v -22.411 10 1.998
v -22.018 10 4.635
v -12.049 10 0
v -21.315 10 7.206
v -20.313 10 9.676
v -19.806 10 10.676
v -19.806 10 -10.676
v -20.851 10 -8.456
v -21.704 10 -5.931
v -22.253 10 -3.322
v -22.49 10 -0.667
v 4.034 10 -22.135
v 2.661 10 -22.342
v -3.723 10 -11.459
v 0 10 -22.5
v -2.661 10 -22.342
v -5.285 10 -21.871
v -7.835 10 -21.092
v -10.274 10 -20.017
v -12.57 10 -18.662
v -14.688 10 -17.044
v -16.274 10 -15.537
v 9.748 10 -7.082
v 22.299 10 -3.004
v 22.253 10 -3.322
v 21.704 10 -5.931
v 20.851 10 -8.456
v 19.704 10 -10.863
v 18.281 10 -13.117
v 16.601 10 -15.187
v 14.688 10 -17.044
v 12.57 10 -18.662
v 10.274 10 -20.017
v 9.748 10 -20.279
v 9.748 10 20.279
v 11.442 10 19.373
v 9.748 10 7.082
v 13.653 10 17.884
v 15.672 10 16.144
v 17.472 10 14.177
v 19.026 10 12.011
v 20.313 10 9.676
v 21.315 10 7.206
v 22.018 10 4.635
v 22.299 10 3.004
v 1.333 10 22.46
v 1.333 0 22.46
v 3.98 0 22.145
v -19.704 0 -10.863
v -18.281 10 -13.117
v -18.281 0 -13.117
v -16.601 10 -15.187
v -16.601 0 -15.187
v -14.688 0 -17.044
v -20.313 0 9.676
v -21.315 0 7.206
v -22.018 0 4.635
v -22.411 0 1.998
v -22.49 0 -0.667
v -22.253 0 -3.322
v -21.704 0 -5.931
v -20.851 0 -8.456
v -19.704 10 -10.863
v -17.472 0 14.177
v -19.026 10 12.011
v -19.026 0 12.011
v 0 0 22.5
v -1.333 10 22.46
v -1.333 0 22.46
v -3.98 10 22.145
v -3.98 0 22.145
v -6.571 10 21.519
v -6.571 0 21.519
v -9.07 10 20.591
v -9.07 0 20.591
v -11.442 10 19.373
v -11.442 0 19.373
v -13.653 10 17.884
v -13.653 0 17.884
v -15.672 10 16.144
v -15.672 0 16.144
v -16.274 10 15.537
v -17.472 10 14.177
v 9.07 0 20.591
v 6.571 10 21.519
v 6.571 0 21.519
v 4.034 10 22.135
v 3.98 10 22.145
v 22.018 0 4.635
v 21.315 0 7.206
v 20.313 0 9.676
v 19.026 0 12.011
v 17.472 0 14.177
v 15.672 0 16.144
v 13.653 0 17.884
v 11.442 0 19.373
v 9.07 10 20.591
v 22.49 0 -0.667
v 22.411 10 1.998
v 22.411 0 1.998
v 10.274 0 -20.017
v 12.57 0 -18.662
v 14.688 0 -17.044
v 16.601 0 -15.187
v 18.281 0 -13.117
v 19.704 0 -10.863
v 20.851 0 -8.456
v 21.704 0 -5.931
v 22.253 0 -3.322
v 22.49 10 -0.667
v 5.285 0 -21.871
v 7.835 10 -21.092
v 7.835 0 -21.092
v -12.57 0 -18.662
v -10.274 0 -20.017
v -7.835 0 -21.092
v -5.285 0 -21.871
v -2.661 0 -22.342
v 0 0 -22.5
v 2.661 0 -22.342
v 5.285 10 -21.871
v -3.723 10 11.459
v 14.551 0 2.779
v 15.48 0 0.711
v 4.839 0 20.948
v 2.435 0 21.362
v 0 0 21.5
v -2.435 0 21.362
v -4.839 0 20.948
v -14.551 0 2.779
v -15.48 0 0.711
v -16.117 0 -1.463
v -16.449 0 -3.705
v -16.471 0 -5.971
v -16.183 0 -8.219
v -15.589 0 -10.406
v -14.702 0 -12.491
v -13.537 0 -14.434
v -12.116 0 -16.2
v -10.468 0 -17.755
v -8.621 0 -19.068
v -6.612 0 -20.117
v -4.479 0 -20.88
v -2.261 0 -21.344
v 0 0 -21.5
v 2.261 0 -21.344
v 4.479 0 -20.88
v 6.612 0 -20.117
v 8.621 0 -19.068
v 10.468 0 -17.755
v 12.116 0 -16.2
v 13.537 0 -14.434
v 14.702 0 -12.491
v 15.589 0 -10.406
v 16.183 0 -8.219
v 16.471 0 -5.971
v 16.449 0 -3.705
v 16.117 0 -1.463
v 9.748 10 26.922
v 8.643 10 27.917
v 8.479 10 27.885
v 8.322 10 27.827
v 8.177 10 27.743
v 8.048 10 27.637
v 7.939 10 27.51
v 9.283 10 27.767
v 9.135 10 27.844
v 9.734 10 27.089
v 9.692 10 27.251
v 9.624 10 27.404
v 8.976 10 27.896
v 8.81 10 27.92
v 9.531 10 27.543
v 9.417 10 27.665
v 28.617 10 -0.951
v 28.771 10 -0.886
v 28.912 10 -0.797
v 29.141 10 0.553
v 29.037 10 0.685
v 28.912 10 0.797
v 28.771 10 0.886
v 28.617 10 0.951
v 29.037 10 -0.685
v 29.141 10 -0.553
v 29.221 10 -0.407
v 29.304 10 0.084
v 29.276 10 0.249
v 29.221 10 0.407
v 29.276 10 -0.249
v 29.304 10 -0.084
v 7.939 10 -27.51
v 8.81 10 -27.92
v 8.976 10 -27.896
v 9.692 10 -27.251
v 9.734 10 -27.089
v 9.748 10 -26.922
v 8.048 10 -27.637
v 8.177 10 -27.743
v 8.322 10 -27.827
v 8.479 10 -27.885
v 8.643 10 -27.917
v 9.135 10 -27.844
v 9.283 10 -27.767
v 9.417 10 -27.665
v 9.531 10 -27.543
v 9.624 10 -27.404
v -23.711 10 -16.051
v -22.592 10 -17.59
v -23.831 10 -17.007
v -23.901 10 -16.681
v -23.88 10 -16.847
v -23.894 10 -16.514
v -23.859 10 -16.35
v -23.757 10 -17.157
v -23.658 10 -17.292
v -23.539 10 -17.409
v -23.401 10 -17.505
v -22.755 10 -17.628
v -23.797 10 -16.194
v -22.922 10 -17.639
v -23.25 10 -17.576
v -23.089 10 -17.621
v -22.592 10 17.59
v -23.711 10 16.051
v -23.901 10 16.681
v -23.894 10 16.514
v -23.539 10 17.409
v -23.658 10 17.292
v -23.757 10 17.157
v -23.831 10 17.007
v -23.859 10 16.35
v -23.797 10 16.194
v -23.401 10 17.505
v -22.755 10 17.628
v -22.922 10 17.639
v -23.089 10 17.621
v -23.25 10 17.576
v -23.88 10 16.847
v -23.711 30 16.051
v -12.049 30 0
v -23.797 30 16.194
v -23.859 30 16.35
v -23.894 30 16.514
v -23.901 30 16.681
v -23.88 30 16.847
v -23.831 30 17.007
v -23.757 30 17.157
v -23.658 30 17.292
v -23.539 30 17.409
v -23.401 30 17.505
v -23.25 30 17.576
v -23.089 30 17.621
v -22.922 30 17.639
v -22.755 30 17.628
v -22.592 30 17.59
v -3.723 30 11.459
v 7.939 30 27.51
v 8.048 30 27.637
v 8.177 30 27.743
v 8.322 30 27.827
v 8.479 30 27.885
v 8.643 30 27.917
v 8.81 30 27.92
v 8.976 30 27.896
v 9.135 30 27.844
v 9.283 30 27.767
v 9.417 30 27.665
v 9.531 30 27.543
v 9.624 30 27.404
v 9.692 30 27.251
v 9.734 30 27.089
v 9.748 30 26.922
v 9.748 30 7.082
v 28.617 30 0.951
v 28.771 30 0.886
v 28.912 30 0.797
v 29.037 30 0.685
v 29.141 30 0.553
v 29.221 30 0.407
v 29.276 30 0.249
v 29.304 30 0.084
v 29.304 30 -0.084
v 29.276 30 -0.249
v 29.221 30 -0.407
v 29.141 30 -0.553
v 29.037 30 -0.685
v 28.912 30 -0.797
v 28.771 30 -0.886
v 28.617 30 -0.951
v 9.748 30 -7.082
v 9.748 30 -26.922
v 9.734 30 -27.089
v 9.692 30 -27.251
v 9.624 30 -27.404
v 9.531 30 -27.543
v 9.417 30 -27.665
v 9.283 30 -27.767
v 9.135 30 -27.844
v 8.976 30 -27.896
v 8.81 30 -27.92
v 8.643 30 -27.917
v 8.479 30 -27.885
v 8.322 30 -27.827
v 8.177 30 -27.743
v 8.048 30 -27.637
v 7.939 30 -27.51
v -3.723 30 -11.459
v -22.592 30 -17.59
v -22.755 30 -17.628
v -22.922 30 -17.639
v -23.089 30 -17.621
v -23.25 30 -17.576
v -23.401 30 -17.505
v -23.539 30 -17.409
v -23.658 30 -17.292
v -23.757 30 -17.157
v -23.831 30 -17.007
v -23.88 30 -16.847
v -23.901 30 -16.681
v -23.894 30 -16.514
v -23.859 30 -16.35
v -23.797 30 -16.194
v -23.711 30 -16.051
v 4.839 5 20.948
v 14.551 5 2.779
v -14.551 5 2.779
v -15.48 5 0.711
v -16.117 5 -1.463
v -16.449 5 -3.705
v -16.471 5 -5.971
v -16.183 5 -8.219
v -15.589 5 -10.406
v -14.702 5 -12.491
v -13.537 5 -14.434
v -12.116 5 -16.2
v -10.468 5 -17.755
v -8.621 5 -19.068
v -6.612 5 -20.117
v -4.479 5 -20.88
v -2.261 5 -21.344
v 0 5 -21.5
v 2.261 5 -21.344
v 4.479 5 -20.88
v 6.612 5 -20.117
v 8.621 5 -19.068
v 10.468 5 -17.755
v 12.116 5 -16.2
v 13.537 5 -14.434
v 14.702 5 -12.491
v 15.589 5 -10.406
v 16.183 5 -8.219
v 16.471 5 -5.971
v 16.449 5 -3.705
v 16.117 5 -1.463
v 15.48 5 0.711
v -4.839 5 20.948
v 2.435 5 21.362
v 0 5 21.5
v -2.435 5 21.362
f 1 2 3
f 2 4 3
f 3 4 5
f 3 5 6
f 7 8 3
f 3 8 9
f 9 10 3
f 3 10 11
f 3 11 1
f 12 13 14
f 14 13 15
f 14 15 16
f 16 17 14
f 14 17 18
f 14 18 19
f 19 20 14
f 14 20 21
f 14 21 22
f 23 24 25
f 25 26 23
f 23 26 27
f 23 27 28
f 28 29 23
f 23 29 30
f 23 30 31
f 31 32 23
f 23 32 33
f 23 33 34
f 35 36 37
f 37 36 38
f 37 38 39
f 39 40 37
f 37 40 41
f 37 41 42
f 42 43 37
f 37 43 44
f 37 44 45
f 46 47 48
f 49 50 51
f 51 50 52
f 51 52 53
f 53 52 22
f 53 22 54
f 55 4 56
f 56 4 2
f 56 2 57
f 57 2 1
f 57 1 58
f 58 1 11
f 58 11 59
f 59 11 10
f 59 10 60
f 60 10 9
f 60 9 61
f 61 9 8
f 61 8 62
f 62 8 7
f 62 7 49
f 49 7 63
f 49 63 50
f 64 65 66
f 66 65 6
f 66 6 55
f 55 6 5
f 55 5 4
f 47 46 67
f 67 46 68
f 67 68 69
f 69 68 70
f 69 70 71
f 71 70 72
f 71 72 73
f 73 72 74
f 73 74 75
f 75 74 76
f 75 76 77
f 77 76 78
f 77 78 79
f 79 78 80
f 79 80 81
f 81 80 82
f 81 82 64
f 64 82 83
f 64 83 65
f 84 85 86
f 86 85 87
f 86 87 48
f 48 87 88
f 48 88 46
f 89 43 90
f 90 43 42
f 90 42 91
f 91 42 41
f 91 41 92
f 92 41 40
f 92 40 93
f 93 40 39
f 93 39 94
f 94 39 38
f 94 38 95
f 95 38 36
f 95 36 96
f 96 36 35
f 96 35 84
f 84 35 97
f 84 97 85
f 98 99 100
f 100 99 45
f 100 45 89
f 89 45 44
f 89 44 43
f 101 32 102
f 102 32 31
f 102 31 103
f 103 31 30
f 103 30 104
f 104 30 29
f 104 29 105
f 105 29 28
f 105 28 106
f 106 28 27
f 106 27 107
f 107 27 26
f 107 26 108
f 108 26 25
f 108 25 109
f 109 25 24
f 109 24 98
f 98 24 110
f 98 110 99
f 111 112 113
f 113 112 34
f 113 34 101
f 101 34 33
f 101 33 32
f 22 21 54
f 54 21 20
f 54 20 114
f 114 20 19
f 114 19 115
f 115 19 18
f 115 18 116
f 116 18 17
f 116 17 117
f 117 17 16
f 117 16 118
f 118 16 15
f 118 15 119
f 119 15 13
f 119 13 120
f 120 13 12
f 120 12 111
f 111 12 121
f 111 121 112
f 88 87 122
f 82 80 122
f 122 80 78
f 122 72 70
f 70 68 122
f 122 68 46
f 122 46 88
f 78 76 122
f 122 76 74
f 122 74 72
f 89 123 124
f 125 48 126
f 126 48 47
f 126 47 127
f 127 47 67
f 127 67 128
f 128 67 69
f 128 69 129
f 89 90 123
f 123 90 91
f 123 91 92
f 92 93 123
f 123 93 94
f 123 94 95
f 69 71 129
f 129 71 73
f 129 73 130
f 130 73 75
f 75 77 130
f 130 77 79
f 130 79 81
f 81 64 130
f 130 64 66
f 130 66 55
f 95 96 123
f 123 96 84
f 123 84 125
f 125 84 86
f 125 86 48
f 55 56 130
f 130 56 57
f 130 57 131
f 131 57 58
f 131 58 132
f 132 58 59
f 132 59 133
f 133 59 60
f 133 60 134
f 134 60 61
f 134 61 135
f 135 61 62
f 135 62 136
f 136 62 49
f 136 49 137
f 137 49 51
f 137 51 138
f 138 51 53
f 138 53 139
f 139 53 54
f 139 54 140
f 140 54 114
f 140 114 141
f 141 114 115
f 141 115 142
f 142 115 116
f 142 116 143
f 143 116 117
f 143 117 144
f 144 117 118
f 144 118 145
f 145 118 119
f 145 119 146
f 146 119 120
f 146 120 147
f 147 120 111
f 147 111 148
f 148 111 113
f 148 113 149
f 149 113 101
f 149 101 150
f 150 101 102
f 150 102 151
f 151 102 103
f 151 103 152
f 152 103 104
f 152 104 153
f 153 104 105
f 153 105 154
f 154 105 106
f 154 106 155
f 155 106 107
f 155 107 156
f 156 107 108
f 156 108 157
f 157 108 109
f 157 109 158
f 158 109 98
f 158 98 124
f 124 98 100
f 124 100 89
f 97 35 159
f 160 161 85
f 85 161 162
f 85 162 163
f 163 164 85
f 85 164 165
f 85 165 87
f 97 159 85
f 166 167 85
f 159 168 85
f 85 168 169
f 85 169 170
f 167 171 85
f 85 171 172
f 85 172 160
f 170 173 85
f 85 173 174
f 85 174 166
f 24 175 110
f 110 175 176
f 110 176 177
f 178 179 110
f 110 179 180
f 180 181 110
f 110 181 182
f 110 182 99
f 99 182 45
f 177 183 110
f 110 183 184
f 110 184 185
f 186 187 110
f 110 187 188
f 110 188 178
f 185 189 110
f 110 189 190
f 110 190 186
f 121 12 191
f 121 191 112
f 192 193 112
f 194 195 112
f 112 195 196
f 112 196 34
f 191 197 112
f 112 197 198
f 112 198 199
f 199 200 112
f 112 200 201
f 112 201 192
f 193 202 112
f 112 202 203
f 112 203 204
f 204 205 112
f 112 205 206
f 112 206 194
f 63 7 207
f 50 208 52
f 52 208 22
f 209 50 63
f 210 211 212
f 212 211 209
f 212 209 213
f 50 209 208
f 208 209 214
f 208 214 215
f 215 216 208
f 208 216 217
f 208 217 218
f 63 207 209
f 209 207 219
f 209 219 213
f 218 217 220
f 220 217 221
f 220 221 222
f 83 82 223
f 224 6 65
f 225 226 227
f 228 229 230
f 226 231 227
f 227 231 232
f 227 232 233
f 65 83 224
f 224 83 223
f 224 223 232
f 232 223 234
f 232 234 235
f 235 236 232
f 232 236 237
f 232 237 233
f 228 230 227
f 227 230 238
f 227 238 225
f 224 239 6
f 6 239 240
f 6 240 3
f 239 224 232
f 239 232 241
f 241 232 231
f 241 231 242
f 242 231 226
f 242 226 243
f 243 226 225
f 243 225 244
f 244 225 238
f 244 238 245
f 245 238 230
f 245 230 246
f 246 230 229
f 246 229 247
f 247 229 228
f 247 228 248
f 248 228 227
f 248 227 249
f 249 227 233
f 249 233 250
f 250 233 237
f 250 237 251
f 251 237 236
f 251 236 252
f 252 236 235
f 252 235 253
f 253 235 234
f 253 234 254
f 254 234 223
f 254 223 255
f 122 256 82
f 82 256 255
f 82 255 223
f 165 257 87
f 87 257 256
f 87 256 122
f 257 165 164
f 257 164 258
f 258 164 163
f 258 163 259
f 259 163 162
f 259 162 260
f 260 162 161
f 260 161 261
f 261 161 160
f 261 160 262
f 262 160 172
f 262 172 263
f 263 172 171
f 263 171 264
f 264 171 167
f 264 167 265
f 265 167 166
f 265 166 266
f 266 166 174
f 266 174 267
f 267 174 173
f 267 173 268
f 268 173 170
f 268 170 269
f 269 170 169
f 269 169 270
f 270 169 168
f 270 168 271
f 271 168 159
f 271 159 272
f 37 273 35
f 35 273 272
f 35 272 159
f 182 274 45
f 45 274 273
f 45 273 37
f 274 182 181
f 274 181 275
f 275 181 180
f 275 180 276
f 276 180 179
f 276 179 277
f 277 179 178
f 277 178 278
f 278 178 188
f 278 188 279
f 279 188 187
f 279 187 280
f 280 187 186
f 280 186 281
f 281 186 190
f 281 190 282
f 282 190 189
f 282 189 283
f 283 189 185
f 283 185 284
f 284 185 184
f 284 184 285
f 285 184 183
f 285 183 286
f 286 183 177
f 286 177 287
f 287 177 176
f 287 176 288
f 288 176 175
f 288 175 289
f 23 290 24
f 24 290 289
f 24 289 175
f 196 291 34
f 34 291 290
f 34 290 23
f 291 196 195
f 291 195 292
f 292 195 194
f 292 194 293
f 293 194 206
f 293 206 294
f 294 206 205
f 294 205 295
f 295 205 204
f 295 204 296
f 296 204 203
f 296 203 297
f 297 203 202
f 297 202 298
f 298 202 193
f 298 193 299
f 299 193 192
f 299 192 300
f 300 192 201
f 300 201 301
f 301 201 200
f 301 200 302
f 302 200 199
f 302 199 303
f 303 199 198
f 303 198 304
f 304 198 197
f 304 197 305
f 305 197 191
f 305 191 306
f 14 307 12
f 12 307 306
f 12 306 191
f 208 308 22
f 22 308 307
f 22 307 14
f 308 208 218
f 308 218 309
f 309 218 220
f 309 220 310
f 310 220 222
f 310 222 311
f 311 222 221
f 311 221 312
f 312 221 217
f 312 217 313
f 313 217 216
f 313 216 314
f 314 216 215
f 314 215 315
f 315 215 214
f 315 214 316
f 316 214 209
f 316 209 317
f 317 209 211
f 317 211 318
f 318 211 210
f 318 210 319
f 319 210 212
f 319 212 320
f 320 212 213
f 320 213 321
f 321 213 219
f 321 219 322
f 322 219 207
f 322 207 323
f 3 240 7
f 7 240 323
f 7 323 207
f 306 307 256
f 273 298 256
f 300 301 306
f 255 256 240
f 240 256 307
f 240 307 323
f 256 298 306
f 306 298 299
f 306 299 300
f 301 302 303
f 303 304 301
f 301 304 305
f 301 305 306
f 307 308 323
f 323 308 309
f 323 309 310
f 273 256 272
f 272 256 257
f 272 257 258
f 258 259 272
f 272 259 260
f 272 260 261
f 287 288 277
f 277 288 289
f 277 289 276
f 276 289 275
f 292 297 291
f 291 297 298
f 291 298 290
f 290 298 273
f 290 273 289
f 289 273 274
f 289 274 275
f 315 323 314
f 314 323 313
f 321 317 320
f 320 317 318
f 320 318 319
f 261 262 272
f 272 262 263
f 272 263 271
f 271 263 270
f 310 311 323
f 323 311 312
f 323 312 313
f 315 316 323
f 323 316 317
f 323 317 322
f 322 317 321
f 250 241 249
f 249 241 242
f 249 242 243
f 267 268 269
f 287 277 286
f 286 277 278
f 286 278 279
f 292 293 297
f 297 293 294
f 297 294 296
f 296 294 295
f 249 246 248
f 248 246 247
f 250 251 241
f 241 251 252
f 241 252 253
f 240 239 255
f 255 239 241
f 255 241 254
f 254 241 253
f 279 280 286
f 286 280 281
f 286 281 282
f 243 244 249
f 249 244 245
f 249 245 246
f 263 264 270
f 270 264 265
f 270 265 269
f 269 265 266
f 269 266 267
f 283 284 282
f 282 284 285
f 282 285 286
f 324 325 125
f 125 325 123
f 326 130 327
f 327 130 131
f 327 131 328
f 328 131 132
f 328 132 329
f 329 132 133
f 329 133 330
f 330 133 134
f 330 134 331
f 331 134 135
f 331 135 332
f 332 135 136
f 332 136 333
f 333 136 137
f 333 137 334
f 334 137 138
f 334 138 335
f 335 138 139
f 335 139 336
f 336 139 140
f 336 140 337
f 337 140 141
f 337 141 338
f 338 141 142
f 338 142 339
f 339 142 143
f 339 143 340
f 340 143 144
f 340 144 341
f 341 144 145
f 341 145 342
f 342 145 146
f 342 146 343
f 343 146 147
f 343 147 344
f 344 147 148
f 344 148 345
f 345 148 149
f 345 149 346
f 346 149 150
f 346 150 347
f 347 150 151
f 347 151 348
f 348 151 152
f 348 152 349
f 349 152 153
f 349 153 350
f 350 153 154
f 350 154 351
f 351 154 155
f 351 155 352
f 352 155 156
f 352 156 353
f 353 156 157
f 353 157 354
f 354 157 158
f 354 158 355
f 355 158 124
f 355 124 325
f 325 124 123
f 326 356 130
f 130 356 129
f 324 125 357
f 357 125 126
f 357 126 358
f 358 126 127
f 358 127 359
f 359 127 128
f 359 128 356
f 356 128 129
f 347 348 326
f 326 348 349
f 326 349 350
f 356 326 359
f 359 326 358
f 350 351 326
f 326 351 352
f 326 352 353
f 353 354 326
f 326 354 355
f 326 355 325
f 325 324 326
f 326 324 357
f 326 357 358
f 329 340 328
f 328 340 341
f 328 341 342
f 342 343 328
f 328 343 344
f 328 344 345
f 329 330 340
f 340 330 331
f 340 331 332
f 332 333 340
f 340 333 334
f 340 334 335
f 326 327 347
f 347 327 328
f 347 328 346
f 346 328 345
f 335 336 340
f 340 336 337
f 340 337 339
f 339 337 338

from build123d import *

# Parameters (mm, degrees)
SKETCH1_R           = 22.5
BOSS_EXTRUDE1_DEPTH = 10
BOSS_EXTRUDE2_DEPTH = 20
SKETCH3_R           = 16.5
CUT_EXTRUDE2_DEPTH  = 5


with BuildPart() as part:
    # Sketch1 → Boss-Extrude1 (new body)
    with BuildSketch(Plane(origin=(0, 0, 0), x_dir=(1, 0, 0), z_dir=(0, 1, 0))):
        Circle(SKETCH1_R)
    extrude(amount=BOSS_EXTRUDE1_DEPTH)

    # Sketch2 → Boss-Extrude2 (add)
    with BuildSketch(Plane(origin=(0, 10, 0), x_dir=(1, 0, 0), z_dir=(0, 1, 0))):
        with BuildLine():
            Line((9.747590887, 26.922316463), (9.747590887, 7.082039325))
            Line((9.747590887, 7.082039325), (28.616815744, 0.951056516))
            ThreePointArc((28.616815744, 0.951056516), (29.30779875, 0), (28.616815744, -0.951056516))
            Line((28.616815744, -0.951056516), (9.747590887, -7.082039325))
            Line((9.747590887, -7.082039325), (9.747590887, -26.922316463))
            ThreePointArc((9.747590887, -26.922316463), (9.056607881, -27.873372979), (7.938573893, -27.510101715))
            Line((7.938573893, -27.510101715), (-3.72324841, -11.458980338))
            Line((-3.72324841, -11.458980338), (-22.592473267, -17.589963146))
            ThreePointArc((-22.592473267, -17.589963146), (-23.710507256, -17.226691882), (-23.710507256, -16.051121378))
            Line((-23.710507256, -16.051121378), (-12.048684953, 0))
            Line((-12.048684953, 0), (-23.710507256, 16.051121378))
            ThreePointArc((-23.710507256, 16.051121378), (-23.710507256, 17.226691882), (-22.592473267, 17.589963146))
            Line((-22.592473267, 17.589963146), (-3.72324841, 11.458980338))
            Line((-3.72324841, 11.458980338), (7.938573893, 27.510101715))
            ThreePointArc((7.938573893, 27.510101715), (9.056607881, 27.873372979), (9.747590887, 26.922316463))
        make_face()
    extrude(amount=BOSS_EXTRUDE2_DEPTH)

    # Sketch3 → Cut-Extrude2 (cut)
    with BuildSketch(Plane.XZ):
        with BuildLine():
            ThreePointArc((-14.551420086, 2.778571429), (0, 11.5), (14.551420086, 2.778571429))
            Line((14.551420086, 2.778571429), (4.83856504, 20.948467447))
            ThreePointArc((4.83856504, 20.948467447), (0, 21.5), (-4.83856504, 20.948467447))
            Line((-4.83856504, 20.948467447), (-14.551420086, 2.778571429))
        make_face()
        with Locations((0, -5)):
            Circle(SKETCH3_R)
    extrude(amount=-CUT_EXTRUDE2_DEPTH, mode=Mode.SUBTRACT)


solid = part.part
